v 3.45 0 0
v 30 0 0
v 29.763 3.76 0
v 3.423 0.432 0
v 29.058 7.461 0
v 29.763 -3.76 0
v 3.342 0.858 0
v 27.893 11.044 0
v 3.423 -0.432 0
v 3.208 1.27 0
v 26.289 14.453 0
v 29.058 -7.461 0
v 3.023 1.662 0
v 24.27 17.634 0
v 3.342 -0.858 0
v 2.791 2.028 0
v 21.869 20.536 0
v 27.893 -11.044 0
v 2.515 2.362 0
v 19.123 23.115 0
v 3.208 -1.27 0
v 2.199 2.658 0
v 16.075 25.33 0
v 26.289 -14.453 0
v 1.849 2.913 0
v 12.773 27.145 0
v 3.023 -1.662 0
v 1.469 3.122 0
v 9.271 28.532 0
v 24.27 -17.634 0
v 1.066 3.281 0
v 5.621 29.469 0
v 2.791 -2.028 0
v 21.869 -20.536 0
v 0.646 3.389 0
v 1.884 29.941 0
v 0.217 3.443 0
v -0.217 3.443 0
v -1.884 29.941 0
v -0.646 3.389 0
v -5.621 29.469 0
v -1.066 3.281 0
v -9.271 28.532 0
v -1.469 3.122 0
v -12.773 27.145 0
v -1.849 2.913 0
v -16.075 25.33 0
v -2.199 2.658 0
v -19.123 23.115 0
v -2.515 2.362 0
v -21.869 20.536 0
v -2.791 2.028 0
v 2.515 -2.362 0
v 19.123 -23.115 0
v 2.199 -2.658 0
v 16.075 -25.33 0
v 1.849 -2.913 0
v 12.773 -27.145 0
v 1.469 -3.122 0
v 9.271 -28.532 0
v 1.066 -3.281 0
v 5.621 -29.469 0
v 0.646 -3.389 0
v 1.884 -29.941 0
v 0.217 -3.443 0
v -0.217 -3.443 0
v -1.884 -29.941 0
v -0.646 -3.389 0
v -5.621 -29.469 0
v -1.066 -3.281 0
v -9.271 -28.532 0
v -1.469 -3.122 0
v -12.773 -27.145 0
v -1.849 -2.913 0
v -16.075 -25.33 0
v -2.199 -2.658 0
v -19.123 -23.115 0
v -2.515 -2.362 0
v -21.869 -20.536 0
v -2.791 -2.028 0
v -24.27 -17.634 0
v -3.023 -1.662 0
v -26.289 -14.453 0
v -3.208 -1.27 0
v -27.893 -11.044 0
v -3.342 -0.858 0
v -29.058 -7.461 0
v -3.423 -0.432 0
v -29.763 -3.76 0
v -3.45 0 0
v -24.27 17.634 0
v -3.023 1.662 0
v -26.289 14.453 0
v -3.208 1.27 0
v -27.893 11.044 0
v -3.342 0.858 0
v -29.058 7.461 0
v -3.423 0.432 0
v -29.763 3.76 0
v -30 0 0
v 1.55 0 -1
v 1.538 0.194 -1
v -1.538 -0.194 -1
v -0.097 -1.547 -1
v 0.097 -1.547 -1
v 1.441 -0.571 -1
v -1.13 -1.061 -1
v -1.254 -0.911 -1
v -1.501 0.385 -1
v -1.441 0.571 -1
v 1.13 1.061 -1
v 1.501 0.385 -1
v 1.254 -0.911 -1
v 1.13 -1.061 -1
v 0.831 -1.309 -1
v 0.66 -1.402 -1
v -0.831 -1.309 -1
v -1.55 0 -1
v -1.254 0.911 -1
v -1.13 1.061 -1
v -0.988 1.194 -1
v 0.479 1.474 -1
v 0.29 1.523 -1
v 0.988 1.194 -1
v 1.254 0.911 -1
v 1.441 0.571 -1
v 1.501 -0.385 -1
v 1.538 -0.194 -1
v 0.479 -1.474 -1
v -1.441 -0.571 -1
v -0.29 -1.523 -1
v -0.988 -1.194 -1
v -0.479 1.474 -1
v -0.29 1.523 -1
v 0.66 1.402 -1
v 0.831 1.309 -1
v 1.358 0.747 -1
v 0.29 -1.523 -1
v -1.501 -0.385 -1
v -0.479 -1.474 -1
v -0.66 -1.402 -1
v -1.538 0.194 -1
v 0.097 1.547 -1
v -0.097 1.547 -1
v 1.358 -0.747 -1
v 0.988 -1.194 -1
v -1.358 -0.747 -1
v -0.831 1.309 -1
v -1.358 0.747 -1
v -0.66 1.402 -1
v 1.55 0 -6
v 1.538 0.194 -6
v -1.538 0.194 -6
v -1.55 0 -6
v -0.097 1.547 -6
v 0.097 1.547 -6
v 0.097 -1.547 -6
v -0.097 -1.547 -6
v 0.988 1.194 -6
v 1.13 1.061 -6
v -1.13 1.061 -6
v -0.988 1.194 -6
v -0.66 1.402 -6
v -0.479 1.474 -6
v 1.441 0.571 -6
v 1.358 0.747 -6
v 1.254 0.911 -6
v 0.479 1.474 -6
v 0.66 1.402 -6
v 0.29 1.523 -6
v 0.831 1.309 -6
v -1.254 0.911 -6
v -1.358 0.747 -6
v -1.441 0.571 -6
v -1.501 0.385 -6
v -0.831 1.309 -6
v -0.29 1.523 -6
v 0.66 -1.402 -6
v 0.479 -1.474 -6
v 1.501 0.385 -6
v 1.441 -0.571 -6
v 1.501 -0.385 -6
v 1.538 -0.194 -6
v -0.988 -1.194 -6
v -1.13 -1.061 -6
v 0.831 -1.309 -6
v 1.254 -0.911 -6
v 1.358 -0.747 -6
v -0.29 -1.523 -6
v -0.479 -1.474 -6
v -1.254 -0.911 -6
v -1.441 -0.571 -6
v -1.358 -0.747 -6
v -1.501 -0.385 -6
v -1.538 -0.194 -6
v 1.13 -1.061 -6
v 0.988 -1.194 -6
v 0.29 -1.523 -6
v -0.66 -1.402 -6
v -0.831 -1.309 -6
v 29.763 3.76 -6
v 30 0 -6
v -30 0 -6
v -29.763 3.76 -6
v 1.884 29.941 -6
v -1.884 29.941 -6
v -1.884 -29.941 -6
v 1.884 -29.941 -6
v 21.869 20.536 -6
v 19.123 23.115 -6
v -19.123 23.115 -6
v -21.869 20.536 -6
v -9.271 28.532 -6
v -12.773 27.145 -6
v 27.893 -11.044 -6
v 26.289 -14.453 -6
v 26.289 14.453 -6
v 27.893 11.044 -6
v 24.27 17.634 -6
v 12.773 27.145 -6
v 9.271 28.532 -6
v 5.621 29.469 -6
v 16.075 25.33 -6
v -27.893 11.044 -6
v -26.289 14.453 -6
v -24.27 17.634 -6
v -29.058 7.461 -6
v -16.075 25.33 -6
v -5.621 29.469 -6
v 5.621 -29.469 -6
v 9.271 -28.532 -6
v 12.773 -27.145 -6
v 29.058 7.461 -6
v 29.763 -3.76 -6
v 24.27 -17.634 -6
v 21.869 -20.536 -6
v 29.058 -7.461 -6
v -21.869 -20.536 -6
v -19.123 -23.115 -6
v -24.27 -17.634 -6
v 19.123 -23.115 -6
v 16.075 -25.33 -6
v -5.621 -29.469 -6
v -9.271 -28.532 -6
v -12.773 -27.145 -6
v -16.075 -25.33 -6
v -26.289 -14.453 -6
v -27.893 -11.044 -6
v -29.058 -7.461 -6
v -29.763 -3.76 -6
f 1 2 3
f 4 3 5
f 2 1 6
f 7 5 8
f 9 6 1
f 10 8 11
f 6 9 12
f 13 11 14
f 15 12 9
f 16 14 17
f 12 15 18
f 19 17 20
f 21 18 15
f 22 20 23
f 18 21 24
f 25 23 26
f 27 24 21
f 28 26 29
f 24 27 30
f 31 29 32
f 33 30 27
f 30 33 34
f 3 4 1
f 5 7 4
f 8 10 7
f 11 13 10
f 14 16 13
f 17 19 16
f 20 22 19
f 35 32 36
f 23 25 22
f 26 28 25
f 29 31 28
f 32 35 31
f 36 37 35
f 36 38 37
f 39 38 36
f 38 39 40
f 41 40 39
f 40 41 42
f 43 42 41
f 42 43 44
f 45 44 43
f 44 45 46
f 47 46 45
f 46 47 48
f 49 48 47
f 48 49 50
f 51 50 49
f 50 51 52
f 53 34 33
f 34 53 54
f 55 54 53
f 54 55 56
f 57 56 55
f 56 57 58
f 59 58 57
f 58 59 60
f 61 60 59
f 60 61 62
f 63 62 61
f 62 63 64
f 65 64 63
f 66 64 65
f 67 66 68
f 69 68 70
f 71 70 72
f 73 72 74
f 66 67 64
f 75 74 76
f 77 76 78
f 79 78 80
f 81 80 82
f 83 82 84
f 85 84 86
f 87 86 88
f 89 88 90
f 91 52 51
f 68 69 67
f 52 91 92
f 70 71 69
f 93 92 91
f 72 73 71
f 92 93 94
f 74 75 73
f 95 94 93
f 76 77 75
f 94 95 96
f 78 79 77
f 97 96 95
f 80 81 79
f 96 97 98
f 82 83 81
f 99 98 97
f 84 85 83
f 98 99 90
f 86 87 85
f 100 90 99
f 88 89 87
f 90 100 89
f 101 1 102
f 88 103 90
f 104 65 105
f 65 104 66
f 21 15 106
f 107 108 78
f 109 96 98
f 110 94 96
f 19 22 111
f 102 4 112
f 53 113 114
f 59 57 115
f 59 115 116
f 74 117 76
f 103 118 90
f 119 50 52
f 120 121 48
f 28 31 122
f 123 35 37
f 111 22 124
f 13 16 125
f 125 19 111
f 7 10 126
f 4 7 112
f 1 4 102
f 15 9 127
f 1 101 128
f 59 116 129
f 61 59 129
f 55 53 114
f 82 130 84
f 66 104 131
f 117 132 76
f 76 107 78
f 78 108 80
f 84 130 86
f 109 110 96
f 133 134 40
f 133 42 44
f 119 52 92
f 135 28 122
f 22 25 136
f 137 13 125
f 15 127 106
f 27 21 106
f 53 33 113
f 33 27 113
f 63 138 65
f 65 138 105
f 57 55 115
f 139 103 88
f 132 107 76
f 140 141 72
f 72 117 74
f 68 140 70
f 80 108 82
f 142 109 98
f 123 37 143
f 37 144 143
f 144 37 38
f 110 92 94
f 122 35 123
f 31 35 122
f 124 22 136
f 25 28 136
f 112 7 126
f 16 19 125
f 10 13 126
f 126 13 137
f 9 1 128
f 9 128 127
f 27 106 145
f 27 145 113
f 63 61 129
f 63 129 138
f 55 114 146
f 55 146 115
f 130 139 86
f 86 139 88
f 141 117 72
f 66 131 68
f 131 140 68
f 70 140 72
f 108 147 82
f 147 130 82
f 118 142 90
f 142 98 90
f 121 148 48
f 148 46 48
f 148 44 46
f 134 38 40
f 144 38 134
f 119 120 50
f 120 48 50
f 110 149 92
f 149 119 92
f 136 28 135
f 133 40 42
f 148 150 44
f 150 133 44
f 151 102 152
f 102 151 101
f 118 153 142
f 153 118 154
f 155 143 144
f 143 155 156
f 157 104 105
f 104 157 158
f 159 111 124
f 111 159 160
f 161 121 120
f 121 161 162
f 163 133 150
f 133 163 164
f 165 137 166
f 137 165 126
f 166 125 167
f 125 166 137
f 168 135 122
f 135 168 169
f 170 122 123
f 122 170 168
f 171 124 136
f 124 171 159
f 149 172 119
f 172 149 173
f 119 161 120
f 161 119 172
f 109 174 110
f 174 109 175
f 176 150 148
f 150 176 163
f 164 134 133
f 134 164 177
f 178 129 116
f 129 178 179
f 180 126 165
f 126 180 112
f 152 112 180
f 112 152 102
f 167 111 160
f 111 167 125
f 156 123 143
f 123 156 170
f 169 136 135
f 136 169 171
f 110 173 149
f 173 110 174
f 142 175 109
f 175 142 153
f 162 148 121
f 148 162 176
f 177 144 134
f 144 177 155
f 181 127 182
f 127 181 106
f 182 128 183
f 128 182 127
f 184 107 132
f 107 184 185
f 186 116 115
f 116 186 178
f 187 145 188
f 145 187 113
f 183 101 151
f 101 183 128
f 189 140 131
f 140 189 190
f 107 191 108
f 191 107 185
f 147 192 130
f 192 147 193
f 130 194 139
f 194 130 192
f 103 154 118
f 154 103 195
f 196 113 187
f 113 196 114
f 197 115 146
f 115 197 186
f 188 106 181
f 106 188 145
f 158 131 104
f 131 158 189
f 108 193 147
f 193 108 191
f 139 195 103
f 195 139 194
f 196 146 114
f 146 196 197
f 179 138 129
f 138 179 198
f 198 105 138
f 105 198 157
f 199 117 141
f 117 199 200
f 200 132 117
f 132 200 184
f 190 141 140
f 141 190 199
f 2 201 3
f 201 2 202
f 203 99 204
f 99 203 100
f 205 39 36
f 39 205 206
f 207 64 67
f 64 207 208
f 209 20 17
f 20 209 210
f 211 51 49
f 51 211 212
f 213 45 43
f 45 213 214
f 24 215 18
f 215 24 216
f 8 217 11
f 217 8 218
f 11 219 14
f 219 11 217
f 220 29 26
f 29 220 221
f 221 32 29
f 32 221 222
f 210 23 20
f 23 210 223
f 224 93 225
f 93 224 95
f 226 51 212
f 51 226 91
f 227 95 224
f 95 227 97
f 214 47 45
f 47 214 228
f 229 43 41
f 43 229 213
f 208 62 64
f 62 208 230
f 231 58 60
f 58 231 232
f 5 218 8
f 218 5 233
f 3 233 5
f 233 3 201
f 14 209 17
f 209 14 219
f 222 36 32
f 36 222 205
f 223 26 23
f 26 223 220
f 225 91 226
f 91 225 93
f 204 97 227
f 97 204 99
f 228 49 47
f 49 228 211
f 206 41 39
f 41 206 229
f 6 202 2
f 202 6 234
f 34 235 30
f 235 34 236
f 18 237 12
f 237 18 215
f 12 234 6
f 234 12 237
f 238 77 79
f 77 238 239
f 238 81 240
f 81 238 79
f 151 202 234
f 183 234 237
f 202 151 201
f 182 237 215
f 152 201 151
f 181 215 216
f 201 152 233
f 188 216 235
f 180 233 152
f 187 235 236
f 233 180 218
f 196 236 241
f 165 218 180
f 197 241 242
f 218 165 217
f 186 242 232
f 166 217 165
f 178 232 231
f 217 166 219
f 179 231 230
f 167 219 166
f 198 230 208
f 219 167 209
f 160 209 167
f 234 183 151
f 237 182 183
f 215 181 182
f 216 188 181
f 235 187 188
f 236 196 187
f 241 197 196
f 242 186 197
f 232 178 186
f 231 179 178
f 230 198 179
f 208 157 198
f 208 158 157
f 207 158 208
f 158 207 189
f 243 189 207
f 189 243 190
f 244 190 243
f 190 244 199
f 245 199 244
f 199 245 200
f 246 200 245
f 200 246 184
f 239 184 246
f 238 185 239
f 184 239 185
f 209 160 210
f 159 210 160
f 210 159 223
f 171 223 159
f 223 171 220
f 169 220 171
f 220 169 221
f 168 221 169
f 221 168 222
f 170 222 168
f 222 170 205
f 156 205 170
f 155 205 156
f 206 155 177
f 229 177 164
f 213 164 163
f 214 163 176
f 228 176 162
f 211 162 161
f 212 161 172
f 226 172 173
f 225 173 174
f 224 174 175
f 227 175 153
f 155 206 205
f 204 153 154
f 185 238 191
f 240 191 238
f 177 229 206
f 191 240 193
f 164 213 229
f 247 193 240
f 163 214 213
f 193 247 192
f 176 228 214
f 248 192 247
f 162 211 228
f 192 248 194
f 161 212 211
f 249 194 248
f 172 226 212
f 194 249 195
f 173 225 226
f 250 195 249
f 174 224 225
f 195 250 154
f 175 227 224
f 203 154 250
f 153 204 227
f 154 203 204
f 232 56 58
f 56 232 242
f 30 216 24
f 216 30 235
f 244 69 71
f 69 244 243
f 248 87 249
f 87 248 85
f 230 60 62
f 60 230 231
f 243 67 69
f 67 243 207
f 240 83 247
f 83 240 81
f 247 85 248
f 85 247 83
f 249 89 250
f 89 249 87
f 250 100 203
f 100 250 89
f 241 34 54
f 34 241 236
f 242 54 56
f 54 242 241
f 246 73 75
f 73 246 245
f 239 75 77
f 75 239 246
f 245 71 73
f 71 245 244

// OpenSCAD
$fn = 50;


difference() {
	union() {
		translate(v = [0, 0, -6.0000000000]) {
			cylinder(h = 6, r = 30.0000000000);
		}
	}
	union() {
		translate(v = [0, 0, 0]) {
			rotate(a = [0, 0, 0]) {
				difference() {
					union() {
						translate(v = [0, 0, -9.0000000000]) {
							cylinder(h = 9, r = 1.2500000000);
						}
						translate(v = [0, 0, -1.0000000000]) {
							cylinder(h = 1.0000000000, r1 = 1.5500000000, r2 = 3.4500000000);
						}
						translate(v = [0, 0, -9.0000000000]) {
							cylinder(h = 9, r = 1.5500000000);
						}
						translate(v = [0, 0, -9.0000000000]) {
							cylinder(h = 9, r = 1.2500000000);
						}
					}
					union();
				}
			}
		}
	}
}
